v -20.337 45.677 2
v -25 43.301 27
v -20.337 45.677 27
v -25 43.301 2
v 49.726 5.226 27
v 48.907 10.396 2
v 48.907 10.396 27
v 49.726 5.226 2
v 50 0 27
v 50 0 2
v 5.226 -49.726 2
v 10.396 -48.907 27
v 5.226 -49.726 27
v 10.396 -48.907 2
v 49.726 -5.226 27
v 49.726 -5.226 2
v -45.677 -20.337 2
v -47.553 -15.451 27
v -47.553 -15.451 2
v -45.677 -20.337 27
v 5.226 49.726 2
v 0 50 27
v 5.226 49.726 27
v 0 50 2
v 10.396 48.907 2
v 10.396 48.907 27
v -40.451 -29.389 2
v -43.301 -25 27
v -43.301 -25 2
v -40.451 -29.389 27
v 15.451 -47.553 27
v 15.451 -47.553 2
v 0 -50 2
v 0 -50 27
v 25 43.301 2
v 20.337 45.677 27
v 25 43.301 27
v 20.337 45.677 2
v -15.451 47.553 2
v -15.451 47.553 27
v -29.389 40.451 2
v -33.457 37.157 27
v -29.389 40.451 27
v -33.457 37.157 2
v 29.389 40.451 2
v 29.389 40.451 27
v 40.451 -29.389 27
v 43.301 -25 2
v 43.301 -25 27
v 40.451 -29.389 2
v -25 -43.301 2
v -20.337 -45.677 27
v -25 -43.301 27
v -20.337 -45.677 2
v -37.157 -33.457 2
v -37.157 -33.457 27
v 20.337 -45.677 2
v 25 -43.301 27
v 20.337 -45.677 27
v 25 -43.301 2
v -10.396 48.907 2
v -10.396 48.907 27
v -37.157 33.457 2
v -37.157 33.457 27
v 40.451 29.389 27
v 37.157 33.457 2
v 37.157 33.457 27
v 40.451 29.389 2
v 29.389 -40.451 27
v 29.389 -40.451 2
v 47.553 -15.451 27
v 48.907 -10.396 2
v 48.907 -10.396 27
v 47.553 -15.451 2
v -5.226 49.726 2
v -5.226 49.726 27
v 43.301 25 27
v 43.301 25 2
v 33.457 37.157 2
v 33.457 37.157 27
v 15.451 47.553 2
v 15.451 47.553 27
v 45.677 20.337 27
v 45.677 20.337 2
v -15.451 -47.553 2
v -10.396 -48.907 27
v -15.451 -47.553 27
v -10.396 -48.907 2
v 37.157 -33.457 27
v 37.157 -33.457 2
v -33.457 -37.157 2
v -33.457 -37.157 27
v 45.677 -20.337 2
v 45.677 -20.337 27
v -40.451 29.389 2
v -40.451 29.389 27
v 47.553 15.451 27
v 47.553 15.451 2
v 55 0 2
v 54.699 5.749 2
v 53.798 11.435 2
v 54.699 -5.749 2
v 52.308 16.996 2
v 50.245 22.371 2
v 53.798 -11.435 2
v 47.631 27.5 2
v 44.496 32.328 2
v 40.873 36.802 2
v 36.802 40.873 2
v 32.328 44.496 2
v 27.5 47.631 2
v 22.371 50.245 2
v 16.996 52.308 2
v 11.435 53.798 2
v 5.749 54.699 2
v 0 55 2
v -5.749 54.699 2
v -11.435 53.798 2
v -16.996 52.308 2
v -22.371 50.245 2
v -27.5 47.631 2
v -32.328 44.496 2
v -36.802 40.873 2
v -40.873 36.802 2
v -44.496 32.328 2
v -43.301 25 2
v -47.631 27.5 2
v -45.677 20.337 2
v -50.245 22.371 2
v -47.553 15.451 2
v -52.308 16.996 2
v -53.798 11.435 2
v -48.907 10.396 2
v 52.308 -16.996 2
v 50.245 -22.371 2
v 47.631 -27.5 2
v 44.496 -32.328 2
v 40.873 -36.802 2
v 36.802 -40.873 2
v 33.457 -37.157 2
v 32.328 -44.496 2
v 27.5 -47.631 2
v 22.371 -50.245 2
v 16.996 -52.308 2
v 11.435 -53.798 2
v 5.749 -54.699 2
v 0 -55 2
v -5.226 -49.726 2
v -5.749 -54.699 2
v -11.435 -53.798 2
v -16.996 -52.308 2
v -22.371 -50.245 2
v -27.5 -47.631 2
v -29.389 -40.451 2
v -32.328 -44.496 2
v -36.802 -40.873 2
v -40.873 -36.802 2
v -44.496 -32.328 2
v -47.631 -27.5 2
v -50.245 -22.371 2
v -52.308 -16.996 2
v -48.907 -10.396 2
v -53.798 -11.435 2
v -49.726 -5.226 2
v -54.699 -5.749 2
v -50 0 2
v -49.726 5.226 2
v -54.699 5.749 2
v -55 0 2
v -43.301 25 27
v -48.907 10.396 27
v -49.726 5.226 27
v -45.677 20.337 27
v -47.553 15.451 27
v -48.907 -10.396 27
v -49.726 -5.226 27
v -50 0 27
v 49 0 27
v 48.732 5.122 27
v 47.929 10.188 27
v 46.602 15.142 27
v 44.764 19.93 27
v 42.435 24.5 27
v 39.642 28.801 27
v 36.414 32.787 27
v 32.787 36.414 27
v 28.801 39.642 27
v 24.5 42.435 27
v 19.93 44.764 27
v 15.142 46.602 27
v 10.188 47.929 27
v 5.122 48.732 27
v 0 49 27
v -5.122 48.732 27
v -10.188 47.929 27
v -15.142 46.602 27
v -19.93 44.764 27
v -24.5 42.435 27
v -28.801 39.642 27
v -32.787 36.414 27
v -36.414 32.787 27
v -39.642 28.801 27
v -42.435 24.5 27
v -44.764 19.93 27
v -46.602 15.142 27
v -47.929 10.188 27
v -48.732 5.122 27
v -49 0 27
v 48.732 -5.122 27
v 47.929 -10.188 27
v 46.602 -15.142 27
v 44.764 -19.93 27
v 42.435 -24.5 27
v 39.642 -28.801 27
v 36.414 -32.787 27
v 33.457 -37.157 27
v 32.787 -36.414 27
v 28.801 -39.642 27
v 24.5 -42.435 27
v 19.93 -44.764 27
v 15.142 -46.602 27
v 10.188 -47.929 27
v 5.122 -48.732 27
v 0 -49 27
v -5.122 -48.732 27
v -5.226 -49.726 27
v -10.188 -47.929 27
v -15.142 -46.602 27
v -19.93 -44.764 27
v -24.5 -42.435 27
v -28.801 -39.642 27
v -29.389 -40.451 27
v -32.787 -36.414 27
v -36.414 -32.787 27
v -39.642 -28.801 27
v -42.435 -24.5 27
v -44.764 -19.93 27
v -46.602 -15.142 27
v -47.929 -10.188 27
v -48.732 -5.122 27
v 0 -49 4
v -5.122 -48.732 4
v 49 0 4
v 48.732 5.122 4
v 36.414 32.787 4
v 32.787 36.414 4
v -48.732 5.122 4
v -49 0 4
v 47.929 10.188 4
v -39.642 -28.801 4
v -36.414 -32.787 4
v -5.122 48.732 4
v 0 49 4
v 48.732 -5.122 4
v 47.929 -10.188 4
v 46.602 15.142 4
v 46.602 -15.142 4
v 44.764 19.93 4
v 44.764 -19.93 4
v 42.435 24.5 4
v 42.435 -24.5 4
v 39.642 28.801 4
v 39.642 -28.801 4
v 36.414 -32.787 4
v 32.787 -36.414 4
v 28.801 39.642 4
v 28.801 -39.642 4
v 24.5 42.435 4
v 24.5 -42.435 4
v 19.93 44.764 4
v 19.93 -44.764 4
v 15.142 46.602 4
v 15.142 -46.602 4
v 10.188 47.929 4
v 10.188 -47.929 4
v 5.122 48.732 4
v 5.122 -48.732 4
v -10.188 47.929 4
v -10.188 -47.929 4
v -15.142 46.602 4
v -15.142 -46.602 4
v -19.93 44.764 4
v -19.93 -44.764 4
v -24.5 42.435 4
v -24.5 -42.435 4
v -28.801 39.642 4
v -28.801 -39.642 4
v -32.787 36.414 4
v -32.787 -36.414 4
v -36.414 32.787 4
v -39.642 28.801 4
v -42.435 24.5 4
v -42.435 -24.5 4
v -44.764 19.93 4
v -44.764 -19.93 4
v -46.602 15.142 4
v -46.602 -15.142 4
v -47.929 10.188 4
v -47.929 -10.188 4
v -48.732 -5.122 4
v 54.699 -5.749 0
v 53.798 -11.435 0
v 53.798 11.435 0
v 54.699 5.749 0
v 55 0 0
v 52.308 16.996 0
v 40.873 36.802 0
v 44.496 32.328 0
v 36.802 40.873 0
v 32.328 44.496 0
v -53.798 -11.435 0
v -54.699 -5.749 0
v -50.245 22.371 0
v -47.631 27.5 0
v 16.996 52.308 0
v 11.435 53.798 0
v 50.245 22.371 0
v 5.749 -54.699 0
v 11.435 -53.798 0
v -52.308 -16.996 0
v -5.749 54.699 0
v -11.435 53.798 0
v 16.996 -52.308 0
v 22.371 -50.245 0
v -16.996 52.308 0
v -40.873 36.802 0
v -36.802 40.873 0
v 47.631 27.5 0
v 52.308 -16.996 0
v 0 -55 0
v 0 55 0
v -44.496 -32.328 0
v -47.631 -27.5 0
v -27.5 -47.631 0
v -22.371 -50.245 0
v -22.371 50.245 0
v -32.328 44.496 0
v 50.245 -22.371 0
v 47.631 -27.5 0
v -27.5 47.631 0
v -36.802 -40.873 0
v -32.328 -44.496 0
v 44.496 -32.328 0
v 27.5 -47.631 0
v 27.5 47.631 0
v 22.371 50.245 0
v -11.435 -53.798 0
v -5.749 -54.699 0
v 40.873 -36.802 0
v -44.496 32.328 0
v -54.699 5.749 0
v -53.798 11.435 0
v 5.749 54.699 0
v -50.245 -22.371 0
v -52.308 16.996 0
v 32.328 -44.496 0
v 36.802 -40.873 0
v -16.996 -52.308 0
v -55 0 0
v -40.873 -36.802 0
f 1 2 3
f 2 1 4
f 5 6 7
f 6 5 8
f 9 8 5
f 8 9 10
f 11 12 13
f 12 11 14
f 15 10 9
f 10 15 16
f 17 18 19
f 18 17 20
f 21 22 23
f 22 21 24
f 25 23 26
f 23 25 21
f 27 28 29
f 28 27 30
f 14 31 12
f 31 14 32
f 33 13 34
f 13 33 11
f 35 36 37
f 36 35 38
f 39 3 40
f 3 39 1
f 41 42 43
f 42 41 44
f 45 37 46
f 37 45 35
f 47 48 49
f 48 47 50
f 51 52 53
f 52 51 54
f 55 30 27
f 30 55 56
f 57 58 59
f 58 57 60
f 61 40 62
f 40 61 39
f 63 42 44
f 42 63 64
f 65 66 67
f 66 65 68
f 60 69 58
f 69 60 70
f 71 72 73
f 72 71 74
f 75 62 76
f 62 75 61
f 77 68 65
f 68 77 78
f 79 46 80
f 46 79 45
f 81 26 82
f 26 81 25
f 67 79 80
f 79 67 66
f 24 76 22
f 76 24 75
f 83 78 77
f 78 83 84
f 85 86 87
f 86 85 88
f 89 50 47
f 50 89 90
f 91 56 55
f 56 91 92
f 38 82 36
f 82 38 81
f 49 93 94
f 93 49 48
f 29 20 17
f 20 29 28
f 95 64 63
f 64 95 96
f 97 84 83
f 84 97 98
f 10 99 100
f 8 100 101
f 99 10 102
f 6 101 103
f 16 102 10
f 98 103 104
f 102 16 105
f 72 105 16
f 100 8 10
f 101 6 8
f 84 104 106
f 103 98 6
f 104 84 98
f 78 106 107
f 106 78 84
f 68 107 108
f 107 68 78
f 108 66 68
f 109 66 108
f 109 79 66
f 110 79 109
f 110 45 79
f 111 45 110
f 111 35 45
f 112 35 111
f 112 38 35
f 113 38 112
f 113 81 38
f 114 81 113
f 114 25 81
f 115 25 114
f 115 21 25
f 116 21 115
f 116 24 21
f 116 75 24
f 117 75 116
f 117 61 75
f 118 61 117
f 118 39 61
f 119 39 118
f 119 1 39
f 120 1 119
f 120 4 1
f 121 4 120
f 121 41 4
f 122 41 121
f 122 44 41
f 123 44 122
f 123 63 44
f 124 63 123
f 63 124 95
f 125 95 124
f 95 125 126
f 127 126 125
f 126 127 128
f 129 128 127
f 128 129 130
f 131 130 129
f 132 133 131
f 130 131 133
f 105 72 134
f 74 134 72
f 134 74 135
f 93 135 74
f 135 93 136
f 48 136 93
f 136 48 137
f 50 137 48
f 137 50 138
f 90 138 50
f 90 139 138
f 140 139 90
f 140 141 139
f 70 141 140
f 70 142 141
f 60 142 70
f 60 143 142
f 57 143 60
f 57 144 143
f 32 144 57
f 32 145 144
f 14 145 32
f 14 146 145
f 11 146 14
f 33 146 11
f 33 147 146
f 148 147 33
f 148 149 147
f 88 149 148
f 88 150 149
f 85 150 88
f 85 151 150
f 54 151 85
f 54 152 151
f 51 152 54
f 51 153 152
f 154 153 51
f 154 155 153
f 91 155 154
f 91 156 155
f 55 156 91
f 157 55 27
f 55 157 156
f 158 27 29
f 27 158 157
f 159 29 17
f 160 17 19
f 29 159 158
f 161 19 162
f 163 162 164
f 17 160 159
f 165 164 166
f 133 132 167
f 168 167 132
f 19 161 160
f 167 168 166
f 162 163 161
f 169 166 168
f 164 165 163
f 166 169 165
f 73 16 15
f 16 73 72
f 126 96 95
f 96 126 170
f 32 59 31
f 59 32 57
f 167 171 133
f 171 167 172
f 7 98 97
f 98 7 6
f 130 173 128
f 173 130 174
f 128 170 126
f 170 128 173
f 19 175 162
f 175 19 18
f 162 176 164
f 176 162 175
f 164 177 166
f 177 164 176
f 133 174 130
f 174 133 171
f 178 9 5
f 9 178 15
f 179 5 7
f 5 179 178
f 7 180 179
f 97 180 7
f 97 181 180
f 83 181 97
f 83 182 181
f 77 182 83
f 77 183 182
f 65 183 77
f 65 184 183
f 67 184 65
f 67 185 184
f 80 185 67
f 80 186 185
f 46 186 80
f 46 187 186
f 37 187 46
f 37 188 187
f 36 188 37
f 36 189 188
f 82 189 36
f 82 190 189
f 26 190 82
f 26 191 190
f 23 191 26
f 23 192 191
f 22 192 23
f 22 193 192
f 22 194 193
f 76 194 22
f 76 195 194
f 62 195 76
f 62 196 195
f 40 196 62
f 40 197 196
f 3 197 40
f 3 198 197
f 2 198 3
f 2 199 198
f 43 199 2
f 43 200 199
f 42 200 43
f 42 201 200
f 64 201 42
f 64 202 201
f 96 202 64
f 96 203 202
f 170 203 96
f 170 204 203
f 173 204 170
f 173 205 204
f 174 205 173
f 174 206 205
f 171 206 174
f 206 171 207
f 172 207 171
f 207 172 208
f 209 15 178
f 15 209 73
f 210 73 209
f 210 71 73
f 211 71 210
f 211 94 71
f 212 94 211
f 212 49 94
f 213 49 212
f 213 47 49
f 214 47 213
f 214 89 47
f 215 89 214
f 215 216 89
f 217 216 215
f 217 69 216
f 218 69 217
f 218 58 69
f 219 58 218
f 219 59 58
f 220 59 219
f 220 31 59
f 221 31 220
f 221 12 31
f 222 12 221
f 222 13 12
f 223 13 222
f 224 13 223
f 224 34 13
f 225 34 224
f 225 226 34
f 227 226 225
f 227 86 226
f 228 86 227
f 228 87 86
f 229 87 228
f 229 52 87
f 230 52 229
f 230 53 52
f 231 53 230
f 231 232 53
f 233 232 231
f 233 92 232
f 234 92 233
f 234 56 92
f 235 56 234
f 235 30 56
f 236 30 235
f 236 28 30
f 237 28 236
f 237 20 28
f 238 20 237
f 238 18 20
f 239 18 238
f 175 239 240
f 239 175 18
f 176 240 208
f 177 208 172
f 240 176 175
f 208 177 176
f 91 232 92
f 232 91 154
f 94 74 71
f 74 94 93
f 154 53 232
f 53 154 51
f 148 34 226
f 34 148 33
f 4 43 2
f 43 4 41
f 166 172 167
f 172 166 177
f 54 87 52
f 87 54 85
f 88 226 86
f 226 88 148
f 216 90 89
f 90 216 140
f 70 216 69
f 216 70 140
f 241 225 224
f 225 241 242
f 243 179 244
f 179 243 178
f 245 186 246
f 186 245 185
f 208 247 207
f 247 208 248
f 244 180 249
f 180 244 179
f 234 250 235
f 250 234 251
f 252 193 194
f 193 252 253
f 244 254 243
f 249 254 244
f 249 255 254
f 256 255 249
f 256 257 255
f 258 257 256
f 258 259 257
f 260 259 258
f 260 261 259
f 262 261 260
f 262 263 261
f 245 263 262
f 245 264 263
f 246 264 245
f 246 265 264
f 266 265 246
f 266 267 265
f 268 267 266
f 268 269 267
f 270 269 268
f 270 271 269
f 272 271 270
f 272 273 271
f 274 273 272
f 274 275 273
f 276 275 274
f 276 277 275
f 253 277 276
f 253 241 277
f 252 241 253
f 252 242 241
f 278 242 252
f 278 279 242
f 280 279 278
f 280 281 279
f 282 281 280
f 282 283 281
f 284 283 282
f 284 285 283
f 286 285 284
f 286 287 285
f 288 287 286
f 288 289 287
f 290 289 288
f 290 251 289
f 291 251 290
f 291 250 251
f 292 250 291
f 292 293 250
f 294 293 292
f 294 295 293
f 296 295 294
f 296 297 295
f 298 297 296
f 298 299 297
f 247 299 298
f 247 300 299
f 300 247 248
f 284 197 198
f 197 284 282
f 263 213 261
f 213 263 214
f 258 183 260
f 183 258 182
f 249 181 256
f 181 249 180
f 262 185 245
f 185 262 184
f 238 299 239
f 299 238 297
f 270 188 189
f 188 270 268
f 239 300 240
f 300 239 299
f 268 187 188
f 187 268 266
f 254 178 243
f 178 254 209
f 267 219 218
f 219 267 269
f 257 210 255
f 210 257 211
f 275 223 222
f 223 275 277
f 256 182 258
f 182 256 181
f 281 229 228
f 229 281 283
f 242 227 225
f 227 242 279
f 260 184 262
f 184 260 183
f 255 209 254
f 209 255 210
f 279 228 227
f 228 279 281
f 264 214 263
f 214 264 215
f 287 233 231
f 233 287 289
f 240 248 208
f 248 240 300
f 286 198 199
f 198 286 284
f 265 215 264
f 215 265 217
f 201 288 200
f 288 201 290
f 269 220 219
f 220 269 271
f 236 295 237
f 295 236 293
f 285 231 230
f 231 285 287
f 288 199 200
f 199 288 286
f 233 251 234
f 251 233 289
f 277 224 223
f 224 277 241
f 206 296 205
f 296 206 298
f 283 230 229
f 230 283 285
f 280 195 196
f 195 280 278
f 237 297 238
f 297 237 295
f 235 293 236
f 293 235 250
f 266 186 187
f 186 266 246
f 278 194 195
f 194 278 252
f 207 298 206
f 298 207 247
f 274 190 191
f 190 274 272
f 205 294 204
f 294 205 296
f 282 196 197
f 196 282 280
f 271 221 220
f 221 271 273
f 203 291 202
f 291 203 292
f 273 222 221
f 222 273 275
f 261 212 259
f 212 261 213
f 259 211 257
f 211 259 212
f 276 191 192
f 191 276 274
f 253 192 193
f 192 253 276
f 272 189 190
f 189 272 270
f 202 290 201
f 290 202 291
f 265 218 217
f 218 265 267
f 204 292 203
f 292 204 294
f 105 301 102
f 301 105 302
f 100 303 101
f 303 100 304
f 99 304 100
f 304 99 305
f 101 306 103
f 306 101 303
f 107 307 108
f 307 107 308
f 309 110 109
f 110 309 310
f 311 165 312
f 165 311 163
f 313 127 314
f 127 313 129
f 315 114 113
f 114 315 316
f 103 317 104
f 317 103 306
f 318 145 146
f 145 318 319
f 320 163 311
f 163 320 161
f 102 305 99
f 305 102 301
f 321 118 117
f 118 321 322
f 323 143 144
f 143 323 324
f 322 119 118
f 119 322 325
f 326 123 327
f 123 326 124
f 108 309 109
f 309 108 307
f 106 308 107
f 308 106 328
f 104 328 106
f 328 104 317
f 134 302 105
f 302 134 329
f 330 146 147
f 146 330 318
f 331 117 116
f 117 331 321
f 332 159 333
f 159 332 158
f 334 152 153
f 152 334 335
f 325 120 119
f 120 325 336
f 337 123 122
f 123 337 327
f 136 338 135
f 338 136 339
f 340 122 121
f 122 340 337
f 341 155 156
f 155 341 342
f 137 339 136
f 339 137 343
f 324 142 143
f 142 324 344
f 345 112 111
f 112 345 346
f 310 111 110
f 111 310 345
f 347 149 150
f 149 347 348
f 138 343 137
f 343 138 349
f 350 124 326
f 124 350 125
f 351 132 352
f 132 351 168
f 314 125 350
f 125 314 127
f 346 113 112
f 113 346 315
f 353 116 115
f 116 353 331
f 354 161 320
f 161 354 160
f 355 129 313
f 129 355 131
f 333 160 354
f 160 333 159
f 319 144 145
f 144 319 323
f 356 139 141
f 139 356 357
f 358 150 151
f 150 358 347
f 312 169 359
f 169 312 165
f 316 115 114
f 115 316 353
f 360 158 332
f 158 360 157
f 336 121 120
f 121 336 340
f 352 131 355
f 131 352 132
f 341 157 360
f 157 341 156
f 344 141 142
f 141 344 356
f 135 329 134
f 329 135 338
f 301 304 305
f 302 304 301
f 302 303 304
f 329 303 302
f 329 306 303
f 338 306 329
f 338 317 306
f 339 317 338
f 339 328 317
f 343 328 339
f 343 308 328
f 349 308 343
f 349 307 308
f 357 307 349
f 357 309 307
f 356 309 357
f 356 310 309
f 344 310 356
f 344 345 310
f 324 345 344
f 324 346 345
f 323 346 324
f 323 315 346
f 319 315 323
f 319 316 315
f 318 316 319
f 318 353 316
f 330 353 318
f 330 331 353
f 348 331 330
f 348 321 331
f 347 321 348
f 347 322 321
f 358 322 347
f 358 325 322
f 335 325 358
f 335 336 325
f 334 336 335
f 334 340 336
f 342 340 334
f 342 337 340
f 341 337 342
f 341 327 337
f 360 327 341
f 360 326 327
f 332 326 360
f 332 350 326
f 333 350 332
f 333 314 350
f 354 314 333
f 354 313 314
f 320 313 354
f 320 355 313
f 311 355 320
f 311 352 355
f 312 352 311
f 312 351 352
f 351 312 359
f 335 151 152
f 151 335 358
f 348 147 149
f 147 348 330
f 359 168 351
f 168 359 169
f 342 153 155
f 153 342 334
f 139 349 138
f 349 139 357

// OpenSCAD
diameter = 100;
rim      =  10;
wall     =   2;
height   =  25;
$fn      =  60;


cylinder( d = diameter+rim, h = wall);
translate([0, 0, wall])
difference() {
    cylinder( d = diameter, h = height );
    translate([0, 0, wall])
    cylinder( d = diameter-wall, h = height);
}
